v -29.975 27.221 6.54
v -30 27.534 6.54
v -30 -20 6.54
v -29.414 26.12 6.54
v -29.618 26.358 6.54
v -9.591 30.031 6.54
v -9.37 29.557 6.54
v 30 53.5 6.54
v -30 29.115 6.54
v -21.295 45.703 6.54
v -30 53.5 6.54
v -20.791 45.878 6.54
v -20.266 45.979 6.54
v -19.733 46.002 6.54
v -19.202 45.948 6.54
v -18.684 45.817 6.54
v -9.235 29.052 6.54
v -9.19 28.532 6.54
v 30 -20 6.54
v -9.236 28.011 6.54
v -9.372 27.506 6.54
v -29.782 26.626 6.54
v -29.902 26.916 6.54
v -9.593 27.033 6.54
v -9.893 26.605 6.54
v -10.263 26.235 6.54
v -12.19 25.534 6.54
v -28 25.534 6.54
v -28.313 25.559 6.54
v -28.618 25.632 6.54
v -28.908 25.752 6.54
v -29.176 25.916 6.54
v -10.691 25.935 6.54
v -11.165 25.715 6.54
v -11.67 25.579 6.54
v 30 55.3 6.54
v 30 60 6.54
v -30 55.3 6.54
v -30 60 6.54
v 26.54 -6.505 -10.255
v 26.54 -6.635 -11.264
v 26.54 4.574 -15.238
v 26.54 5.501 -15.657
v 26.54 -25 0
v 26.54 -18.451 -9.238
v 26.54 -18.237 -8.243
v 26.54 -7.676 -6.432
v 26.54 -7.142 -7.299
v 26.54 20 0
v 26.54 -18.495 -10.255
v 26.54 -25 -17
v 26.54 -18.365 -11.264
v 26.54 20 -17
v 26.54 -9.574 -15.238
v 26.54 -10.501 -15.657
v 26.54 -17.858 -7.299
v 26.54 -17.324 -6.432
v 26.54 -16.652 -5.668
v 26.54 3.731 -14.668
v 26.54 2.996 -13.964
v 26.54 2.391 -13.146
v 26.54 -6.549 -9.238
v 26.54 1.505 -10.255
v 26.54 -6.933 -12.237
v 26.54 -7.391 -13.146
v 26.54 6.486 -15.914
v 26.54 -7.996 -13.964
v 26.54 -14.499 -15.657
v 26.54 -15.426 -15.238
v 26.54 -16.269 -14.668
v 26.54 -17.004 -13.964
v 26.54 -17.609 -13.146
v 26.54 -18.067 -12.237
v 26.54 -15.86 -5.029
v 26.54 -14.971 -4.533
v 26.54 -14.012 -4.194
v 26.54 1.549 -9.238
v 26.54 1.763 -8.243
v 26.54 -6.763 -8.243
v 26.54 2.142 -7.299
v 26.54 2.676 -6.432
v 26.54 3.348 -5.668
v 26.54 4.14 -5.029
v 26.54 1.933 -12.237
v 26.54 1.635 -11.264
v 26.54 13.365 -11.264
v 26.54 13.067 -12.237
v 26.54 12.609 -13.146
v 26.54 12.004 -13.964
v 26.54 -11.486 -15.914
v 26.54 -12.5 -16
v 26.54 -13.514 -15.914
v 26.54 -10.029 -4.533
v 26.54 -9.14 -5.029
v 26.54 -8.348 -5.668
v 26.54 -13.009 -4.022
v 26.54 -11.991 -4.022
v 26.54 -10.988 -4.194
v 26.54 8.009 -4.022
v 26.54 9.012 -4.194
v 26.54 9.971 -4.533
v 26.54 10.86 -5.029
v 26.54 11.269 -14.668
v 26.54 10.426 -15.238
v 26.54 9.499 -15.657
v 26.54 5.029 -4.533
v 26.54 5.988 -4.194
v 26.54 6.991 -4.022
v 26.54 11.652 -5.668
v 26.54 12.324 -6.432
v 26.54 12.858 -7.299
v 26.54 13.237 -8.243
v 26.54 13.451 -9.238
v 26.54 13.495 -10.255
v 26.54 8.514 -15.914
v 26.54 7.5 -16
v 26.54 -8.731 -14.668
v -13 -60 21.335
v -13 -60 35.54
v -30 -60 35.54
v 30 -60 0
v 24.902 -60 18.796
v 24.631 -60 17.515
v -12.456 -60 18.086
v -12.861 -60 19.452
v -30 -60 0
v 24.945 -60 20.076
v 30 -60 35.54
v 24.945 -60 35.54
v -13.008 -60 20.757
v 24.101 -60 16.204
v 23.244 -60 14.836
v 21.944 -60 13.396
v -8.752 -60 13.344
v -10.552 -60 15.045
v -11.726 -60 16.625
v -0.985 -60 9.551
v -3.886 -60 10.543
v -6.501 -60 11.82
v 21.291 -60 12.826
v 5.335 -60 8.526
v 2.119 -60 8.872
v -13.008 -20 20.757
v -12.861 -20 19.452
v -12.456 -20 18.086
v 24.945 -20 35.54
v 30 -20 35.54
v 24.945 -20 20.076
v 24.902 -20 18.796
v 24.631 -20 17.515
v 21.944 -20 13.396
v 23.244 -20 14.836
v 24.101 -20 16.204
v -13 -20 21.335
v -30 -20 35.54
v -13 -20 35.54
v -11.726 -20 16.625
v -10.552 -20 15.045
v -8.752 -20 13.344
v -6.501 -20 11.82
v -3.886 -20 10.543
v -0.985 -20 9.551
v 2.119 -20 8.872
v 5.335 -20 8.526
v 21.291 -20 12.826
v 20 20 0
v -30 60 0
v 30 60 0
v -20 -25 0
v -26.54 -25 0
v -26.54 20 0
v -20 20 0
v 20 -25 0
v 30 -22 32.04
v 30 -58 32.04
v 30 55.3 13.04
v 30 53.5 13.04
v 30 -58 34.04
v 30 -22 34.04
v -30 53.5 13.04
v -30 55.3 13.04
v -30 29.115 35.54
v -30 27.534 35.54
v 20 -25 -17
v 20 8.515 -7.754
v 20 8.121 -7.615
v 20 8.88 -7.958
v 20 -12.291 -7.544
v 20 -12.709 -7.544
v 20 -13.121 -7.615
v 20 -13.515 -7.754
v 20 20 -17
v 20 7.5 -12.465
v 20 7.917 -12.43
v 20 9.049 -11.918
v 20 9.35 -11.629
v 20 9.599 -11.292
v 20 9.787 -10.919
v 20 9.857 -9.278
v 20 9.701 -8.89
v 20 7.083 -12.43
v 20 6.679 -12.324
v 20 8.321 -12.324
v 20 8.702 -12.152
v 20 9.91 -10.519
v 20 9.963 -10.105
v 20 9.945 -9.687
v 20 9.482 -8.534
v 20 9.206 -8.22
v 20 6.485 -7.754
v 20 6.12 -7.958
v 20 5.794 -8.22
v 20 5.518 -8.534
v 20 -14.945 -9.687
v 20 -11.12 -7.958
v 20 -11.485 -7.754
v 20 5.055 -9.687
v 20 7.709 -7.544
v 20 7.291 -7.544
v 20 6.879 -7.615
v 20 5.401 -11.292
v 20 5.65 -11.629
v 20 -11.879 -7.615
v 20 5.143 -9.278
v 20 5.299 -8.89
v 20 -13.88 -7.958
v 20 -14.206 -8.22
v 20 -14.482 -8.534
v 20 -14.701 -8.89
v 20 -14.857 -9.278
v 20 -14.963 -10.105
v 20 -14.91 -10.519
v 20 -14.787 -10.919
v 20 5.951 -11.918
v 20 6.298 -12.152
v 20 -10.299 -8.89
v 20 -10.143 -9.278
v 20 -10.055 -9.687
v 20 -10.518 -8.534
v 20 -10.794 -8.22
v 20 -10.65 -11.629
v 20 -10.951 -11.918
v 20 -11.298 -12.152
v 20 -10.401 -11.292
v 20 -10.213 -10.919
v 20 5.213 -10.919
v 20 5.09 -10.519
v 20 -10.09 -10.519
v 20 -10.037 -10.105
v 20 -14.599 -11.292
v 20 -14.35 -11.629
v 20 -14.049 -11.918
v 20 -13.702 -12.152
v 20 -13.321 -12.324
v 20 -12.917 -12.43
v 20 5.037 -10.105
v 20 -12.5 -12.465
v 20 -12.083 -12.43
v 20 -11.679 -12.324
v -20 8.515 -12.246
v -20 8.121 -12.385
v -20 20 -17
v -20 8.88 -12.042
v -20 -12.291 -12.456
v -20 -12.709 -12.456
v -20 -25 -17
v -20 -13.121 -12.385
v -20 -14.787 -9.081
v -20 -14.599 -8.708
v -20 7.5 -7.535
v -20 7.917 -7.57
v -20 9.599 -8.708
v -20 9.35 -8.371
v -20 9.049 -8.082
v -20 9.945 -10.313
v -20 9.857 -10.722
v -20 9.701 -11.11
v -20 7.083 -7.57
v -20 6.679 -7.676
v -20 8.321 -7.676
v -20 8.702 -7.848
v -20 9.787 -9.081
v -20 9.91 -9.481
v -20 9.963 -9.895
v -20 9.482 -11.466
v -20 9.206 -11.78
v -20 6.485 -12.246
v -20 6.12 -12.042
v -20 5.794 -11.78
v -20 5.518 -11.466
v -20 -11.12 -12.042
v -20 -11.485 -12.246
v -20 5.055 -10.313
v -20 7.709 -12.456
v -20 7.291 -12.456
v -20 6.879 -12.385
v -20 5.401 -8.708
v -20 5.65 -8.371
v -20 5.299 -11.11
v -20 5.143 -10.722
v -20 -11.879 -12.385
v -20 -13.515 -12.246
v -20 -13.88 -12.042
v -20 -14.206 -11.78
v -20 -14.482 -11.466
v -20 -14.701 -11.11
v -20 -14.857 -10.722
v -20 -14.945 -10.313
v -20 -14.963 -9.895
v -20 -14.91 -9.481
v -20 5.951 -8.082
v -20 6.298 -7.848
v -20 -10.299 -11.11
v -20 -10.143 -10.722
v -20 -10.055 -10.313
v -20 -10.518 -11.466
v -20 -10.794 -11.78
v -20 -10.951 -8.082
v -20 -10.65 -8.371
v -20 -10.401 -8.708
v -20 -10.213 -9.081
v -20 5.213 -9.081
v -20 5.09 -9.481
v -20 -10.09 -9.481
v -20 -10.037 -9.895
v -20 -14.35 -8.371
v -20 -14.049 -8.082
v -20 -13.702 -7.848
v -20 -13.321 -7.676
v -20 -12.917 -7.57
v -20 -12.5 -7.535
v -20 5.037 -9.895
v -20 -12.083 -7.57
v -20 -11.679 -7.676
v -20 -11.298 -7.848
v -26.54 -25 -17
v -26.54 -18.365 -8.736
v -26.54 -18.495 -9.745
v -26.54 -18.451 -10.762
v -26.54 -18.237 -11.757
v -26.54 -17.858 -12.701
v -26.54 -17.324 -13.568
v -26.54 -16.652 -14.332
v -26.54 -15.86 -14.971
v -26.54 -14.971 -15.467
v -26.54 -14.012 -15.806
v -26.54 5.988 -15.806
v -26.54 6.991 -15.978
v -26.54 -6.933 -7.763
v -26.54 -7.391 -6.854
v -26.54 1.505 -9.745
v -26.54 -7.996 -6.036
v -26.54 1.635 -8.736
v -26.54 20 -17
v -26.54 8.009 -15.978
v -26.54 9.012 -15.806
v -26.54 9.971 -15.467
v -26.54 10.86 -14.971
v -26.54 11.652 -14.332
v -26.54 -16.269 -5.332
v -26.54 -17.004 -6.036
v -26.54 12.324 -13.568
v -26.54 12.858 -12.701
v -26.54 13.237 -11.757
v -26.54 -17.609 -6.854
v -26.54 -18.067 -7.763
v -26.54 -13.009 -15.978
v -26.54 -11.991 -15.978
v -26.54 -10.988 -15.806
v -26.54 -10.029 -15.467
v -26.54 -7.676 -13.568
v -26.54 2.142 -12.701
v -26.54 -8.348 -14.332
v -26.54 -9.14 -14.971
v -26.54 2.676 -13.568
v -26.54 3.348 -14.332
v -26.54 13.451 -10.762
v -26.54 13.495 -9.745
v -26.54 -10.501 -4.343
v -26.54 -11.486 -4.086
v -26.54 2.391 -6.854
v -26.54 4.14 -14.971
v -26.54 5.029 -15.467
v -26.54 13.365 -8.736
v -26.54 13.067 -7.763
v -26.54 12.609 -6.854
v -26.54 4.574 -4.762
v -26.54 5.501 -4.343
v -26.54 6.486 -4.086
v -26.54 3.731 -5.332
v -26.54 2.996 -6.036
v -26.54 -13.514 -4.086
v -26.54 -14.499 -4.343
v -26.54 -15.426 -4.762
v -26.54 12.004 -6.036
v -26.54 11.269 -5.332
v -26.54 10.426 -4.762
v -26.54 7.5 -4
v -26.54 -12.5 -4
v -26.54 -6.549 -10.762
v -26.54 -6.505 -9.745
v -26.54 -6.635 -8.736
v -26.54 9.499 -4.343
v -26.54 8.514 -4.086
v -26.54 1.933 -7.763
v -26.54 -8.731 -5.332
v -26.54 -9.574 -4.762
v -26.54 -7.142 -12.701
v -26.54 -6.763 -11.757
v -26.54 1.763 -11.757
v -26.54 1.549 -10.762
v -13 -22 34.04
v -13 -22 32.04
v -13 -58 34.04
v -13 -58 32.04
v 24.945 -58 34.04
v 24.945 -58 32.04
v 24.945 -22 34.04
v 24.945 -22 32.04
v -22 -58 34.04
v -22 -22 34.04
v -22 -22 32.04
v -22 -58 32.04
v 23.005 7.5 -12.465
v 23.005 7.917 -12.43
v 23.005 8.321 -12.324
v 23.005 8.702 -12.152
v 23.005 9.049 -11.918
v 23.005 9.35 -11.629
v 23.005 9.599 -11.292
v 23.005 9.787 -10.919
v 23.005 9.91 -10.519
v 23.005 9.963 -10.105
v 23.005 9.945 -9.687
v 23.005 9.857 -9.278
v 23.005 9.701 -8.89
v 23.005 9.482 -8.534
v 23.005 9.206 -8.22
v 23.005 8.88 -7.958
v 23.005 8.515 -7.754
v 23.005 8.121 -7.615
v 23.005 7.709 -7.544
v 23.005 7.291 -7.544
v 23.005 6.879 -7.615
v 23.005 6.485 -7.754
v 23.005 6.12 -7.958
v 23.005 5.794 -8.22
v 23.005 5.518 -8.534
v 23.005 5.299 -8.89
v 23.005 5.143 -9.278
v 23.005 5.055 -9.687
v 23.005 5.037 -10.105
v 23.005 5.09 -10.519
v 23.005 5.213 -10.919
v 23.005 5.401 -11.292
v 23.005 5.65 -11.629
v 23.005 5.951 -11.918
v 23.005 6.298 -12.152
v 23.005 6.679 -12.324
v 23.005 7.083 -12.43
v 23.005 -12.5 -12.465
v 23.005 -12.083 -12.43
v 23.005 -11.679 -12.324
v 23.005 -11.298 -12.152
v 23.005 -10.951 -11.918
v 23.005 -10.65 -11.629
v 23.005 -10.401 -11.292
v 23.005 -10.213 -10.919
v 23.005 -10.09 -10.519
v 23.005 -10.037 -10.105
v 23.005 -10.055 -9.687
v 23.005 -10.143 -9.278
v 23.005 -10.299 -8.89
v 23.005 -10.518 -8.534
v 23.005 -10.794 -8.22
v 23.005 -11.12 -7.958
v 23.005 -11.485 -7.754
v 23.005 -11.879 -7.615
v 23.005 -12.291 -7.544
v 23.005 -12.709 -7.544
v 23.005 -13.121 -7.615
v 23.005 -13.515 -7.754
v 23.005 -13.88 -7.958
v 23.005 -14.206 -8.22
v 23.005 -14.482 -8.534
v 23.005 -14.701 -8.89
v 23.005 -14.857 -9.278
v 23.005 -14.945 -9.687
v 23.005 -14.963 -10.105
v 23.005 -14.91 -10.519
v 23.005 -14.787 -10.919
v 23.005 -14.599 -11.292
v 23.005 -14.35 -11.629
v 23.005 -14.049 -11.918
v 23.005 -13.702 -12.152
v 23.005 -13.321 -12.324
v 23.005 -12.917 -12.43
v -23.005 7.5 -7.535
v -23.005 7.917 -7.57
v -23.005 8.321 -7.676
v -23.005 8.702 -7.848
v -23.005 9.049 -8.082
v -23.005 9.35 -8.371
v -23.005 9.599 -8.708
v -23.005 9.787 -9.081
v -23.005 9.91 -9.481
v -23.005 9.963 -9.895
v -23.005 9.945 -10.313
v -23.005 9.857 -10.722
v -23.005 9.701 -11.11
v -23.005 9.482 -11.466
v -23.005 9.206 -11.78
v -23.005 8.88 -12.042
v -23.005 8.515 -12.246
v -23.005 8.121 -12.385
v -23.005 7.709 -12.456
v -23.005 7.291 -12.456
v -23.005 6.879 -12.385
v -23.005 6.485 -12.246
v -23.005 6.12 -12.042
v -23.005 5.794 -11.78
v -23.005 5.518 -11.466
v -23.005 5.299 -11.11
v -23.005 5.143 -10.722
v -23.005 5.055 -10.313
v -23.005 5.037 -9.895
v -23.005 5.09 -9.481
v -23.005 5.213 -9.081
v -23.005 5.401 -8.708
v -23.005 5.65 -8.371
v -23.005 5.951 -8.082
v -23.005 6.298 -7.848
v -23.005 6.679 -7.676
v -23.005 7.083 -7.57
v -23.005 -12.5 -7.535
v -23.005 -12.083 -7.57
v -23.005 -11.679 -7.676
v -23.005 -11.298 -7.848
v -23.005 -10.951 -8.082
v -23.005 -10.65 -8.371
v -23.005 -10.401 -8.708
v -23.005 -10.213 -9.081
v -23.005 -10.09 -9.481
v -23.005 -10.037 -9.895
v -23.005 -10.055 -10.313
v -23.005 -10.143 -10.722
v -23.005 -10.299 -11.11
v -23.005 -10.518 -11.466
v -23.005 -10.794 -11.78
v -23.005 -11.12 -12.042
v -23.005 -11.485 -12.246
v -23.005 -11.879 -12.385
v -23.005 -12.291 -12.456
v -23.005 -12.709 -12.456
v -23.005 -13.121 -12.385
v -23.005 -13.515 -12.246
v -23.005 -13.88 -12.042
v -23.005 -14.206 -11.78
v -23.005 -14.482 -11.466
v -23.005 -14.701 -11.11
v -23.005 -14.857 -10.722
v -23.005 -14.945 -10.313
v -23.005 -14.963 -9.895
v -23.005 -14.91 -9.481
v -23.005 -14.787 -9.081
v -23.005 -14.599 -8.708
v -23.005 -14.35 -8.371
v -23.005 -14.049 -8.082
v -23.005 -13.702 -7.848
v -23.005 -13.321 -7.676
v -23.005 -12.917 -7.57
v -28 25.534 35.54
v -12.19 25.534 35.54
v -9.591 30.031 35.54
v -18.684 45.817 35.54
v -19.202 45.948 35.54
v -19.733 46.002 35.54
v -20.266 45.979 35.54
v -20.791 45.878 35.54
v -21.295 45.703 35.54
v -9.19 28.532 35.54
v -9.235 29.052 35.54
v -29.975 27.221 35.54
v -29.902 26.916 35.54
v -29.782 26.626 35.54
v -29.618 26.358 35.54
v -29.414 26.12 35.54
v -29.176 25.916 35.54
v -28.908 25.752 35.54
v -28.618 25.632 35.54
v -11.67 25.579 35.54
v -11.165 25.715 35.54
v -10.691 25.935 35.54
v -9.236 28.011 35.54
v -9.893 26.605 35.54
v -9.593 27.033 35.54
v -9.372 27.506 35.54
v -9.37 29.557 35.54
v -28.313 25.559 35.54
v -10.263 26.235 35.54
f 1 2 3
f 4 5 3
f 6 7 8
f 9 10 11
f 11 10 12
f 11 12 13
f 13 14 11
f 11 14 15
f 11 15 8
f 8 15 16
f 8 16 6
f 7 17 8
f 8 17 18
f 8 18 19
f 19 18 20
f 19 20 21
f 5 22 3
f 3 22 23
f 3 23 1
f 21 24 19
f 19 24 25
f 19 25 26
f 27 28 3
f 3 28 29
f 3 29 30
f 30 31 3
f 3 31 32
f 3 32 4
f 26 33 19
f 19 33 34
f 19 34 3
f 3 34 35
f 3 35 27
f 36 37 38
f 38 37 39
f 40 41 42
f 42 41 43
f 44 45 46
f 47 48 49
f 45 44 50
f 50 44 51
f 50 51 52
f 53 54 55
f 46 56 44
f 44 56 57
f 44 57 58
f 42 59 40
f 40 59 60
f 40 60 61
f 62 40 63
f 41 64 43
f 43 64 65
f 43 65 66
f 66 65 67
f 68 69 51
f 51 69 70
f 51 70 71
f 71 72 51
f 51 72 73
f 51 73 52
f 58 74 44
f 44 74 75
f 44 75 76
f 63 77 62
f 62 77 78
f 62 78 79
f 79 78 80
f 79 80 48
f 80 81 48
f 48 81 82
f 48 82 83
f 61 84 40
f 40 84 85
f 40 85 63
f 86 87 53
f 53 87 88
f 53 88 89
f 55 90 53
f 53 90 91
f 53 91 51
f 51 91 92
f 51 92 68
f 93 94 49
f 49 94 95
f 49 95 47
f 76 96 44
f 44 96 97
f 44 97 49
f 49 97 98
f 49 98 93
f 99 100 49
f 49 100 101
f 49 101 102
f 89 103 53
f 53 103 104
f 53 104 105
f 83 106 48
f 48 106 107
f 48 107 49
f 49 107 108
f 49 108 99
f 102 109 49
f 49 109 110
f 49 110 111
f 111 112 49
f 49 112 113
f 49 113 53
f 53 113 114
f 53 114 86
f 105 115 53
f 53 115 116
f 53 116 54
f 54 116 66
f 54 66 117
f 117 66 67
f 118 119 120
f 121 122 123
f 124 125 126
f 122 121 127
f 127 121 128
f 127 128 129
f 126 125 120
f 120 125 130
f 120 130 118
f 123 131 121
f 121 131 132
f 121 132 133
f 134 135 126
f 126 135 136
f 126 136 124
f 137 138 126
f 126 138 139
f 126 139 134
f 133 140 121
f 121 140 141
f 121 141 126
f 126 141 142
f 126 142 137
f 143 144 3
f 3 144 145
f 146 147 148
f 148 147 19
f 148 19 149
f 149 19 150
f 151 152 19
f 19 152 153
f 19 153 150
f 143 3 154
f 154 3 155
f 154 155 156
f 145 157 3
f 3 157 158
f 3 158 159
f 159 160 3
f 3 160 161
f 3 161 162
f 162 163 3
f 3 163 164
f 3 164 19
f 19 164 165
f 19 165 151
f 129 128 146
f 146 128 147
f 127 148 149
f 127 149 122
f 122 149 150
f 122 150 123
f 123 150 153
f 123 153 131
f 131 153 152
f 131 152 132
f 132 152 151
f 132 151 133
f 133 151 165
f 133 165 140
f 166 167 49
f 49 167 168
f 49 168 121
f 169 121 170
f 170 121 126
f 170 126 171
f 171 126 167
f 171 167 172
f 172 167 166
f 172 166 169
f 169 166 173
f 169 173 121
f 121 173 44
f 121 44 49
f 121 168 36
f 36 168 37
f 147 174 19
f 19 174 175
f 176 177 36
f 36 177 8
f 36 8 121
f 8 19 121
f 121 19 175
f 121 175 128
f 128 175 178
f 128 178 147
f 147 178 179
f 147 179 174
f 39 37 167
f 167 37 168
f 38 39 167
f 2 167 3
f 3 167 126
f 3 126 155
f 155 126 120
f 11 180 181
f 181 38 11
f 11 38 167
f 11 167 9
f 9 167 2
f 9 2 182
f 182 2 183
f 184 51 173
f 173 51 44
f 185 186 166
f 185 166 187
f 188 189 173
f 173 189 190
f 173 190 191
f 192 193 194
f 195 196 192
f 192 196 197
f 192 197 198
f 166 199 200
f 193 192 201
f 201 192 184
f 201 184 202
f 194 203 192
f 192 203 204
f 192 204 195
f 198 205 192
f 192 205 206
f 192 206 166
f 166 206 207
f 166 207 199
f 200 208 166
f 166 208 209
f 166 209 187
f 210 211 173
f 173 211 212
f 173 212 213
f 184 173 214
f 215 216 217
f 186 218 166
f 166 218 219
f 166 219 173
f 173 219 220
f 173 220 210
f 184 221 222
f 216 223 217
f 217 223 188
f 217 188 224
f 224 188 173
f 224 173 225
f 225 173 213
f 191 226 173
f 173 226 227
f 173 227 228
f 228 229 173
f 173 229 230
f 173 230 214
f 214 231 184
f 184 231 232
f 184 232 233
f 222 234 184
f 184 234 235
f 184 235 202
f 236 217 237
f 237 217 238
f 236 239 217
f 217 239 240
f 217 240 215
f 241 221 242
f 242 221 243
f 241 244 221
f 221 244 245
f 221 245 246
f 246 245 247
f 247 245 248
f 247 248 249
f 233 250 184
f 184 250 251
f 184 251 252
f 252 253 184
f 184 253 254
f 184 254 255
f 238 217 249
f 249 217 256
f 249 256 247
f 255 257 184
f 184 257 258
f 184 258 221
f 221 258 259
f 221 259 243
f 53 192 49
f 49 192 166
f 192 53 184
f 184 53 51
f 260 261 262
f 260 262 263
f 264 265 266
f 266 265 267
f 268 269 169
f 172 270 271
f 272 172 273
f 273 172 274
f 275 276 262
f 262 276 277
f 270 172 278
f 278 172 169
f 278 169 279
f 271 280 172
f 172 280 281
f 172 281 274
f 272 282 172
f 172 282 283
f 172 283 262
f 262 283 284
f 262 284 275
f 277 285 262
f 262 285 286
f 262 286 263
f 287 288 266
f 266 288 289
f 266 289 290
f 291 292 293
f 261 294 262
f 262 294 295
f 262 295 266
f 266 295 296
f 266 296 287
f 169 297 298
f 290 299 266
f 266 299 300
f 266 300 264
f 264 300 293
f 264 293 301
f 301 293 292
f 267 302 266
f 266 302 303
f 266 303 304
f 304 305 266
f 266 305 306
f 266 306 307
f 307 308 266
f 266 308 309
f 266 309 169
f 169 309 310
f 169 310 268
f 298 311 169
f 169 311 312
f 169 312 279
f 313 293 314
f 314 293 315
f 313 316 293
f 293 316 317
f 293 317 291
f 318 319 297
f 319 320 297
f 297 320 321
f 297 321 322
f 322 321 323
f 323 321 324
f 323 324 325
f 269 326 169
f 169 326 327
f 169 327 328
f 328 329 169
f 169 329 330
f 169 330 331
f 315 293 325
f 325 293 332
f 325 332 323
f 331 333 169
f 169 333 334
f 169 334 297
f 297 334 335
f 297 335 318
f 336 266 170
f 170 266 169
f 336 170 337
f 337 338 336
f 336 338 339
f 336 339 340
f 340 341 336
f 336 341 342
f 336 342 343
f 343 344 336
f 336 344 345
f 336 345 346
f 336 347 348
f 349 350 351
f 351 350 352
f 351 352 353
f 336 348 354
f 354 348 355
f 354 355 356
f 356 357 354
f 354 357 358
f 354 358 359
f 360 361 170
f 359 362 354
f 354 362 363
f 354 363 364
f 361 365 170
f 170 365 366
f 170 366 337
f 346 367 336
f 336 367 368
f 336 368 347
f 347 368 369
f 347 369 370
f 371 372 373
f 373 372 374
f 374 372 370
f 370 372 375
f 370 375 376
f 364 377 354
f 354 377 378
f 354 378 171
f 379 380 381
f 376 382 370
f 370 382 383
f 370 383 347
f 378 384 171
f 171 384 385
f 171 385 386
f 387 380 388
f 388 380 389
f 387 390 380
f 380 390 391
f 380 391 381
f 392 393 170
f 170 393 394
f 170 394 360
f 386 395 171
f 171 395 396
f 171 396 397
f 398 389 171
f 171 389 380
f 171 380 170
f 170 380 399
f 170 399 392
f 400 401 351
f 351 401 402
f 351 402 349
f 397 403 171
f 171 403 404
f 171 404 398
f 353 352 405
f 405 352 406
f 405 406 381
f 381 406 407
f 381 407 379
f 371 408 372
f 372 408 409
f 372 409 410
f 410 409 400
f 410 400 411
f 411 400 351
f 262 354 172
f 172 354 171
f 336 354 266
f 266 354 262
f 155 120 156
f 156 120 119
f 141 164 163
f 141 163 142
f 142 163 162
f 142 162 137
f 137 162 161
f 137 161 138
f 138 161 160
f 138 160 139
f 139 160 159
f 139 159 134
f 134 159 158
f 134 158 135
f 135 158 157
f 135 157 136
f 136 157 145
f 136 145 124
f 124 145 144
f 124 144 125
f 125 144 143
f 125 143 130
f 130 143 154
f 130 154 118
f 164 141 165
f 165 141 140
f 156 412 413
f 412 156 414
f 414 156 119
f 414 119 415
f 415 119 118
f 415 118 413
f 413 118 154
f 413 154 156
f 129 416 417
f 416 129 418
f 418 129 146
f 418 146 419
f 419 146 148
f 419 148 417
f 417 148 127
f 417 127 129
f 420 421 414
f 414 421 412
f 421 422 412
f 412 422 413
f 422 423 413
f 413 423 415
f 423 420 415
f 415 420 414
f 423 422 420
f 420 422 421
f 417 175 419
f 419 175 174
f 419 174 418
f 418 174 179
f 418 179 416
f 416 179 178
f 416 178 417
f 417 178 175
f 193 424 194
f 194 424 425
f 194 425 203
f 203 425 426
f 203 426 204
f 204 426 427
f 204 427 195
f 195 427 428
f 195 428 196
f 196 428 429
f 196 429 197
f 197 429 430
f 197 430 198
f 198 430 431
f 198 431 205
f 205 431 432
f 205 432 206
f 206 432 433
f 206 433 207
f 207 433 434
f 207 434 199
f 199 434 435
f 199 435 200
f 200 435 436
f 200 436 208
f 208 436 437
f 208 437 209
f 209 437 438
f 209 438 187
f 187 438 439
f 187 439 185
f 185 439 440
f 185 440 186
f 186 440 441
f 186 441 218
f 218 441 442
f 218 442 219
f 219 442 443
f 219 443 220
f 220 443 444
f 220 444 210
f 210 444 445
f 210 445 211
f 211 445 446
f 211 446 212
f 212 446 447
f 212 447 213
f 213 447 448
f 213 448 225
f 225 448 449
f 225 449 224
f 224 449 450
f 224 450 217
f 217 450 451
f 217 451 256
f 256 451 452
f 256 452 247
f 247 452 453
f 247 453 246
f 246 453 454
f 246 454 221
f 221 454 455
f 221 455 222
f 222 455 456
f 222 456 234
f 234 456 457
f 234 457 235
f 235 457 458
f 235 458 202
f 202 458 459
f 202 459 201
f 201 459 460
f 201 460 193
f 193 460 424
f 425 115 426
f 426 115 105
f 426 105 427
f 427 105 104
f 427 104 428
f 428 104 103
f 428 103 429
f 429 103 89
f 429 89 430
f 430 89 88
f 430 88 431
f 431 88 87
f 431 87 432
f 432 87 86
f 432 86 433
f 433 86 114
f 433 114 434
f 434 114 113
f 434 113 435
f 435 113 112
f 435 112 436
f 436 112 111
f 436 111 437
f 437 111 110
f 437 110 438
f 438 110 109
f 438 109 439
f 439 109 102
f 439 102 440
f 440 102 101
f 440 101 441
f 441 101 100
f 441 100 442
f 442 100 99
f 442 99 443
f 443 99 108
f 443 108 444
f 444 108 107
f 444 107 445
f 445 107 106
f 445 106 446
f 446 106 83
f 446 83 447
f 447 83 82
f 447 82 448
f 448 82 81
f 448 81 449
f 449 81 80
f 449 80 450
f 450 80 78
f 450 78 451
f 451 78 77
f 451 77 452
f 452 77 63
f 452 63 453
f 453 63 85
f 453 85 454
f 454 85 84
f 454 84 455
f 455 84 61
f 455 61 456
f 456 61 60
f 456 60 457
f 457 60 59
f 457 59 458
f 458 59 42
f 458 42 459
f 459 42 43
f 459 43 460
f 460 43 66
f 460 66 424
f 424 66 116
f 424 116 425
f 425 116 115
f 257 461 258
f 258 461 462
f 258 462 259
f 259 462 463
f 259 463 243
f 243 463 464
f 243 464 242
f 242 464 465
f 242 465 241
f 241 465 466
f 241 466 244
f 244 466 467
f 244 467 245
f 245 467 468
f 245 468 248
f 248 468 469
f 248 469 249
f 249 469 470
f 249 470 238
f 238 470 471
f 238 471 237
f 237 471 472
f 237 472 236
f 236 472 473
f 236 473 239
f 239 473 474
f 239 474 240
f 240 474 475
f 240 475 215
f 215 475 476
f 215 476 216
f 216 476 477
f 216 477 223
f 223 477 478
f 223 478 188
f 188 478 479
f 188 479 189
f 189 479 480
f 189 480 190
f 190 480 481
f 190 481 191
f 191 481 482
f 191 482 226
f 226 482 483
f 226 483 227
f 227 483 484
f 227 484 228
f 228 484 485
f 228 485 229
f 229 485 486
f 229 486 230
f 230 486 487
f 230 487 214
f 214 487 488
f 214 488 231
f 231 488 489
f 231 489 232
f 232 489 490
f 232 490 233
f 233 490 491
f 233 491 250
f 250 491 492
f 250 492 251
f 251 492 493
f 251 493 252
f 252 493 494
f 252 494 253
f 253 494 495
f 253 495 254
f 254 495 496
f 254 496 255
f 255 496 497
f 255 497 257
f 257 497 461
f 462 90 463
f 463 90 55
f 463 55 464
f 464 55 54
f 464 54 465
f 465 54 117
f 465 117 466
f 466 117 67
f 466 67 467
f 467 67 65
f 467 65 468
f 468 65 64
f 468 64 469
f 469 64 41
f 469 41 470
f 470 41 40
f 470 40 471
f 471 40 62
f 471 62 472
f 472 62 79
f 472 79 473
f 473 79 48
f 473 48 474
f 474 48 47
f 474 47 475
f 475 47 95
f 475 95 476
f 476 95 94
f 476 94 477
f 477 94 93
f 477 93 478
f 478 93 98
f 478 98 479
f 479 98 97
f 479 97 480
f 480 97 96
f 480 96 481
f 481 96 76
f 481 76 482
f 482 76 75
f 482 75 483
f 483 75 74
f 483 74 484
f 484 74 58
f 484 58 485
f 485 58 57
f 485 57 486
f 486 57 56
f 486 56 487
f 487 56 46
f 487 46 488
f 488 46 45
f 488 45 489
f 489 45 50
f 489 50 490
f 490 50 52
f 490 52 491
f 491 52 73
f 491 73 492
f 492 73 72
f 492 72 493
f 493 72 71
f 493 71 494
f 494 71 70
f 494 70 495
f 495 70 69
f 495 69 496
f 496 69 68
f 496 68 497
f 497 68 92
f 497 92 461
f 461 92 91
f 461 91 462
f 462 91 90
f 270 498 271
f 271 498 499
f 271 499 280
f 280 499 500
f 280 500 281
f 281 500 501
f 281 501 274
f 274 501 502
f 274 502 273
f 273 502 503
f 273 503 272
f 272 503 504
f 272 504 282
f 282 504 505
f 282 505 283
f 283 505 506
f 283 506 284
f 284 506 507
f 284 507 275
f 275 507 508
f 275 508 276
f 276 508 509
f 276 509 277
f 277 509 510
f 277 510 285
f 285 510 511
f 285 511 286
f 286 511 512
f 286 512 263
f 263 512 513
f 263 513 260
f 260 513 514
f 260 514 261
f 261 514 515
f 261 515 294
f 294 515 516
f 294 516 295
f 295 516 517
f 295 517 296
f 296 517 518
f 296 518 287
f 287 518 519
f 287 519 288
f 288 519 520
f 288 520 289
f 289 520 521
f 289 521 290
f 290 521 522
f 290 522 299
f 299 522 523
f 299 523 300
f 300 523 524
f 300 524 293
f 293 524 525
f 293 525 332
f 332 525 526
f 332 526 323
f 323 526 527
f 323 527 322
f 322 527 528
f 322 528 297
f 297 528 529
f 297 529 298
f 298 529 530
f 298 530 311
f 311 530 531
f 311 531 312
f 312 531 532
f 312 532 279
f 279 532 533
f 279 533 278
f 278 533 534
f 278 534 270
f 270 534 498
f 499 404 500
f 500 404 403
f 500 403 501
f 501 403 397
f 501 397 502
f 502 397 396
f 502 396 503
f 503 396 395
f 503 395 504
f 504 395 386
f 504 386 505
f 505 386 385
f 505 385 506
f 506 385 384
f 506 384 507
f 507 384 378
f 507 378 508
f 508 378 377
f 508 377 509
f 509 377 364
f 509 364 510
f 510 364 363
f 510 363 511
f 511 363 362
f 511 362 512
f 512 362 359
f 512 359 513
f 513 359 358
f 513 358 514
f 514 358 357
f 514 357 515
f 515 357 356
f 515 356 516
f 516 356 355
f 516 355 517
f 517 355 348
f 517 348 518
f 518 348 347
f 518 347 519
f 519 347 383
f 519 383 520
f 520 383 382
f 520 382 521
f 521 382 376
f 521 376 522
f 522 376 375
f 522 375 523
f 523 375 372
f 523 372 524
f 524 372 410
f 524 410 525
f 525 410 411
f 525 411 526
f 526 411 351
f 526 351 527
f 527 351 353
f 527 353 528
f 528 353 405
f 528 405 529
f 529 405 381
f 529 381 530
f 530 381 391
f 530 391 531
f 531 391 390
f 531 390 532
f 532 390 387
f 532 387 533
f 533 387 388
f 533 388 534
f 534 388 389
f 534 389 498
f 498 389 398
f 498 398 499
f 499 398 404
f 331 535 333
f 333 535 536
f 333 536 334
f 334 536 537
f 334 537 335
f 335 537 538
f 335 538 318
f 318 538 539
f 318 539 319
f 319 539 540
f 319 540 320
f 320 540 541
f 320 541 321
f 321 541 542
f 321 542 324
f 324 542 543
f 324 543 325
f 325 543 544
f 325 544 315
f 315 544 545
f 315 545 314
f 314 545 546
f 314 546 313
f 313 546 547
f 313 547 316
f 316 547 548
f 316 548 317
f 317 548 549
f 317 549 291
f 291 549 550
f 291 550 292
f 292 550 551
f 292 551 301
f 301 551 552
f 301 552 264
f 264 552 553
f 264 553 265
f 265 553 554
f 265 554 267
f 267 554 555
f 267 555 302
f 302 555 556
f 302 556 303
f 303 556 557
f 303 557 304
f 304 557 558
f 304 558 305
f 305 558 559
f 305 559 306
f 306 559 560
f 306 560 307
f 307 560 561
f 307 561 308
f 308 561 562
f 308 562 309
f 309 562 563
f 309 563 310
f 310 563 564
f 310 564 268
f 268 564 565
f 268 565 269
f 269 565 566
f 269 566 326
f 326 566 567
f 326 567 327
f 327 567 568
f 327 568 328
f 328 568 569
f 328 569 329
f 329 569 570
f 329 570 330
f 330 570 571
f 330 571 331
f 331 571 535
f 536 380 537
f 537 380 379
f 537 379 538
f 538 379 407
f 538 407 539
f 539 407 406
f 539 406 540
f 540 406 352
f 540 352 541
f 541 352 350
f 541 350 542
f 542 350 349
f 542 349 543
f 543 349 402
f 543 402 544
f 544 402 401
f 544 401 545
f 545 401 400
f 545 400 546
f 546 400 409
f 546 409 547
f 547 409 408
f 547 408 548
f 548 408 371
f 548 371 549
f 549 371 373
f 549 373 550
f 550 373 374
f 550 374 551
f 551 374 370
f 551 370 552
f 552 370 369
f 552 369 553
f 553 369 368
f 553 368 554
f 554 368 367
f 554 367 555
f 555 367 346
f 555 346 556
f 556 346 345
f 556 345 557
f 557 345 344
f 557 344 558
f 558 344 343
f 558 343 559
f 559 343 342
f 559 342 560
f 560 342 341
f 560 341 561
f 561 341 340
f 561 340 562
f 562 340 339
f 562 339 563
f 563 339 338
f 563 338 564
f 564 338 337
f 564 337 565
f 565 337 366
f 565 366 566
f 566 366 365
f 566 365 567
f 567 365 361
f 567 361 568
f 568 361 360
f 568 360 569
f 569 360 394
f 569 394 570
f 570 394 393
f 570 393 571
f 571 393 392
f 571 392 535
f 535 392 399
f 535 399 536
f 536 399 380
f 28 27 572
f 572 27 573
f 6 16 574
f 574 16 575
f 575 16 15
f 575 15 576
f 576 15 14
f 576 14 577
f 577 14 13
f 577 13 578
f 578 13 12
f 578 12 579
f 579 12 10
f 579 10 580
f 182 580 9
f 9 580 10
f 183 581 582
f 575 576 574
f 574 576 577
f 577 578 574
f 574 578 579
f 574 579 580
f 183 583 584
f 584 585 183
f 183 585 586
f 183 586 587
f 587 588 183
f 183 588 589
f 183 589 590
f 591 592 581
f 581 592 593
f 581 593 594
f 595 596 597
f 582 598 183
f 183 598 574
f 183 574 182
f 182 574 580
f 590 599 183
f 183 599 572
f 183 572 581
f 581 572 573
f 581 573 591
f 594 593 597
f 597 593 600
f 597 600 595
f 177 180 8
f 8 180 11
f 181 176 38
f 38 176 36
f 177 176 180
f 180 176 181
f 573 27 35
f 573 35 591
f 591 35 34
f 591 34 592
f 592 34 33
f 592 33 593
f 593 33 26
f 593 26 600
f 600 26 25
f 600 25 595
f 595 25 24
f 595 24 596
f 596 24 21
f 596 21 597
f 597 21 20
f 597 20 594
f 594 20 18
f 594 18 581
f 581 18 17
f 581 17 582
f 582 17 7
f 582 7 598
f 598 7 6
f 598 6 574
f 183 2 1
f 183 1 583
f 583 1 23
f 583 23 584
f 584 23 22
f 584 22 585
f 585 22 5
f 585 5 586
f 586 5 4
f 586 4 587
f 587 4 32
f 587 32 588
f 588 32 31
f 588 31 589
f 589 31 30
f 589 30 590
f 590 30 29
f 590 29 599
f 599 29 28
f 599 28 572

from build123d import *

# Parameters (mm, degrees)
SKETCH1_W                                       = 60
SKETCH1_H                                       = 120
BOSS_EXTRUDE1_DEPTH                             = 6.54
SKETCH10_W                                      = 6.54
SKETCH10_H                                      = 45
BOSS_EXTRUDE5_DEPTH                             = 17
SKETCH17_W                                      = 60
SKETCH17_H                                      = 40
BOSS_EXTRUDE6_DEPTH                             = 29
CUT_EXTRUDE1_REACH                              = 42
CUT_EXTRUDE2_REACH                              = 54.54
SKETCH21_W                                      = 37.9445377
SKETCH21_H                                      = 40
SKETCH23_W                                      = 2
SKETCH23_H                                      = 36
CUT_EXTRUDE3_DEPTH                              = 9
SKETCH24_W                                      = 2
SKETCH24_H                                      = 36
CUT_EXTRUDE4_DEPTH                              = 9
CSK_FOR_M3_FLAT_HEAD_MACHINE_SCREW4_D           = 4.93
CSK_FOR_M3_FLAT_HEAD_MACHINE_SCREW4_DEPTH       = 6.54
CSK_FOR_M3_FLAT_HEAD_MACHINE_SCREW4_CSINK_D     = 12
CSK_FOR_M3_FLAT_HEAD_MACHINE_SCREW4_CSINK_ANGLE = 90
CSK_FOR_M3_FLAT_HEAD_MACHINE_SCREW5_D           = 4.93
CSK_FOR_M3_FLAT_HEAD_MACHINE_SCREW5_DEPTH       = 6.54
CSK_FOR_M3_FLAT_HEAD_MACHINE_SCREW5_CSINK_D     = 12
CSK_FOR_M3_FLAT_HEAD_MACHINE_SCREW5_CSINK_ANGLE = 90
BOSS_EXTRUDE8_DEPTH                             = 29
SKETCH36_W                                      = 60
SKETCH36_H                                      = 1.8
BOSS_EXTRUDE9_DEPTH                             = 6.5
FILLET1_R                                       = 3
FILLET2_R                                       = 2


with BuildPart() as part:
    # Sketch1 → Boss-Extrude1 (new body)
    with BuildSketch(Plane.XY):
        Rectangle(SKETCH1_W, SKETCH1_H)
    extrude(amount=BOSS_EXTRUDE1_DEPTH)

    # Sketch10 → Boss-Extrude5 (add)
    with BuildSketch(Plane(origin=(0, 0, 0), x_dir=(-1, 0, 0), z_dir=(0, 0, -1))):
        with Locations((23.27, -2.5)):
            Rectangle(SKETCH10_W, SKETCH10_H)
        with Locations((-23.27, -2.5)):
            Rectangle(SKETCH10_W, SKETCH10_H)
    extrude(amount=BOSS_EXTRUDE5_DEPTH)

    # Sketch17 → Boss-Extrude6 (add)
    with BuildSketch(Plane.XY.offset(6.54)):
        with Locations((0, -40)):
            Rectangle(SKETCH17_W, SKETCH17_H)
    extrude(amount=BOSS_EXTRUDE6_DEPTH)

    # Sketch18 → Cut-Extrude1 (cut, up to next)
    with BuildSketch(Plane(origin=(0, -20, 0), x_dir=(1, 0, 0), z_dir=(0, 1, 0)), mode=Mode.PRIVATE) as cut_extrude1_sk1:
        with BuildLine():
            Line((5.334966353, -8.526396136), (21.291300905, -12.825812438))
            add(Edge.make_bspline(
                [(5.334966353, -8.526396136), (-17.854714365, -9.780670981), (-12.49786254, -23.648890313), (-7.141010715, -37.517109645), (13.926544327, -30.768916863), (34.994099369, -24.020724082), (21.291300905, -12.825812438)],
                knots=[1.570796327, 1.570796327, 1.570796327, 3.340987112, 3.340987112, 5.111177898, 5.111177898, 6.881368684, 6.881368684, 6.881368684], degree=2, weights=[1, 0.633215673, 1, 0.633215673, 1, 0.633215673, 1]))
        make_face()
    cut_extrude1_tool1 = extrude(cut_extrude1_sk1.sketch, amount=-CUT_EXTRUDE1_REACH, mode=Mode.PRIVATE) & part.part
    add(cut_extrude1_tool1.solids().sort_by_distance((5.792514, -20, 20.554542))[0], mode=Mode.SUBTRACT)

    # Sketch21 → Cut-Extrude2 (cut, up to next)
    with BuildSketch(Plane.XY.offset(35.54), mode=Mode.PRIVATE) as cut_extrude2_sk1:
        with Locations((5.97226885, -40)):
            Rectangle(SKETCH21_W, SKETCH21_H)
    cut_extrude2_tool1 = extrude(cut_extrude2_sk1.sketch, amount=-CUT_EXTRUDE2_REACH, mode=Mode.PRIVATE) & part.part
    add(cut_extrude2_tool1.solids().sort_by_distance((5.972269, -40, 35.54))[0], mode=Mode.SUBTRACT)

    # Sketch23 → Cut-Extrude3 (cut)
    with BuildSketch(Plane(origin=(-13, 0, 0), x_dir=(0, 0, -1), z_dir=(1, 0, 0))):
        with Locations((-33.04, -40)):
            Rectangle(SKETCH23_W, SKETCH23_H)
    extrude(amount=-CUT_EXTRUDE3_DEPTH, mode=Mode.SUBTRACT)

    # Sketch24 → Cut-Extrude4 (cut)
    with BuildSketch(Plane.ZY.offset(-24.9445377)):
        with Locations((33.04, -40)):
            Rectangle(SKETCH24_W, SKETCH24_H)
    extrude(amount=-CUT_EXTRUDE4_DEPTH, mode=Mode.SUBTRACT)

    # CSK for M3 Flat Head Machine Screw4
    with Locations(Plane(origin=(26.54, -12.5, -10), x_dir=(0, 1, 0), z_dir=(1, 0, 0))):
        with Locations((0, 0), (20, 0)):
            CounterSinkHole(CSK_FOR_M3_FLAT_HEAD_MACHINE_SCREW4_D / 2, CSK_FOR_M3_FLAT_HEAD_MACHINE_SCREW4_CSINK_D / 2, depth=CSK_FOR_M3_FLAT_HEAD_MACHINE_SCREW4_DEPTH, counter_sink_angle=CSK_FOR_M3_FLAT_HEAD_MACHINE_SCREW4_CSINK_ANGLE)

    # CSK for M3 Flat Head Machine Screw5
    with Locations(Plane(origin=(-26.54, -12.5, -10), x_dir=(0, -1, 0), z_dir=(-1, 0, 0))):
        with Locations((0, 0), (-20, 0)):
            CounterSinkHole(CSK_FOR_M3_FLAT_HEAD_MACHINE_SCREW5_D / 2, CSK_FOR_M3_FLAT_HEAD_MACHINE_SCREW5_CSINK_D / 2, depth=CSK_FOR_M3_FLAT_HEAD_MACHINE_SCREW5_DEPTH, counter_sink_angle=CSK_FOR_M3_FLAT_HEAD_MACHINE_SCREW5_CSINK_ANGLE)

    # Sketch7 → Boss-Extrude8 (add)
    with BuildSketch(Plane.XY.offset(6.54)):
        with BuildLine():
            Line((-7, 25.533918981), (-18.684094898, 45.817285768))
            ThreePointArc((-18.684094898, 45.817285768), (-20, 46), (-21.294986864, 45.703352481))
            Line((-21.294986864, 45.703352481), (-30, 29.115374119))
            Line((-30, 29.115374119), (-30, 25.533918981))
            Line((-30, 25.533918981), (-7, 25.533918981))
        make_face()
    extrude(amount=BOSS_EXTRUDE8_DEPTH)

    # Sketch36 → Boss-Extrude9 (add)
    with BuildSketch(Plane.XY.offset(6.54)):
        with Locations((0, 54.4)):
            Rectangle(SKETCH36_W, SKETCH36_H)
    extrude(amount=BOSS_EXTRUDE9_DEPTH)

    # Fillet1
    fillet1_edges = [part.edges().sort_by_distance(p)[0] for p in [
        (-7, 25.533918981, 21.04),
    ]]
    fillet(fillet1_edges, radius=FILLET1_R)

    # Fillet2
    fillet2_edges = [part.edges().sort_by_distance(p)[0] for p in [
        (-30, 25.533918981, 21.04),
    ]]
    fillet(fillet2_edges, radius=FILLET2_R)


solid = part.part
